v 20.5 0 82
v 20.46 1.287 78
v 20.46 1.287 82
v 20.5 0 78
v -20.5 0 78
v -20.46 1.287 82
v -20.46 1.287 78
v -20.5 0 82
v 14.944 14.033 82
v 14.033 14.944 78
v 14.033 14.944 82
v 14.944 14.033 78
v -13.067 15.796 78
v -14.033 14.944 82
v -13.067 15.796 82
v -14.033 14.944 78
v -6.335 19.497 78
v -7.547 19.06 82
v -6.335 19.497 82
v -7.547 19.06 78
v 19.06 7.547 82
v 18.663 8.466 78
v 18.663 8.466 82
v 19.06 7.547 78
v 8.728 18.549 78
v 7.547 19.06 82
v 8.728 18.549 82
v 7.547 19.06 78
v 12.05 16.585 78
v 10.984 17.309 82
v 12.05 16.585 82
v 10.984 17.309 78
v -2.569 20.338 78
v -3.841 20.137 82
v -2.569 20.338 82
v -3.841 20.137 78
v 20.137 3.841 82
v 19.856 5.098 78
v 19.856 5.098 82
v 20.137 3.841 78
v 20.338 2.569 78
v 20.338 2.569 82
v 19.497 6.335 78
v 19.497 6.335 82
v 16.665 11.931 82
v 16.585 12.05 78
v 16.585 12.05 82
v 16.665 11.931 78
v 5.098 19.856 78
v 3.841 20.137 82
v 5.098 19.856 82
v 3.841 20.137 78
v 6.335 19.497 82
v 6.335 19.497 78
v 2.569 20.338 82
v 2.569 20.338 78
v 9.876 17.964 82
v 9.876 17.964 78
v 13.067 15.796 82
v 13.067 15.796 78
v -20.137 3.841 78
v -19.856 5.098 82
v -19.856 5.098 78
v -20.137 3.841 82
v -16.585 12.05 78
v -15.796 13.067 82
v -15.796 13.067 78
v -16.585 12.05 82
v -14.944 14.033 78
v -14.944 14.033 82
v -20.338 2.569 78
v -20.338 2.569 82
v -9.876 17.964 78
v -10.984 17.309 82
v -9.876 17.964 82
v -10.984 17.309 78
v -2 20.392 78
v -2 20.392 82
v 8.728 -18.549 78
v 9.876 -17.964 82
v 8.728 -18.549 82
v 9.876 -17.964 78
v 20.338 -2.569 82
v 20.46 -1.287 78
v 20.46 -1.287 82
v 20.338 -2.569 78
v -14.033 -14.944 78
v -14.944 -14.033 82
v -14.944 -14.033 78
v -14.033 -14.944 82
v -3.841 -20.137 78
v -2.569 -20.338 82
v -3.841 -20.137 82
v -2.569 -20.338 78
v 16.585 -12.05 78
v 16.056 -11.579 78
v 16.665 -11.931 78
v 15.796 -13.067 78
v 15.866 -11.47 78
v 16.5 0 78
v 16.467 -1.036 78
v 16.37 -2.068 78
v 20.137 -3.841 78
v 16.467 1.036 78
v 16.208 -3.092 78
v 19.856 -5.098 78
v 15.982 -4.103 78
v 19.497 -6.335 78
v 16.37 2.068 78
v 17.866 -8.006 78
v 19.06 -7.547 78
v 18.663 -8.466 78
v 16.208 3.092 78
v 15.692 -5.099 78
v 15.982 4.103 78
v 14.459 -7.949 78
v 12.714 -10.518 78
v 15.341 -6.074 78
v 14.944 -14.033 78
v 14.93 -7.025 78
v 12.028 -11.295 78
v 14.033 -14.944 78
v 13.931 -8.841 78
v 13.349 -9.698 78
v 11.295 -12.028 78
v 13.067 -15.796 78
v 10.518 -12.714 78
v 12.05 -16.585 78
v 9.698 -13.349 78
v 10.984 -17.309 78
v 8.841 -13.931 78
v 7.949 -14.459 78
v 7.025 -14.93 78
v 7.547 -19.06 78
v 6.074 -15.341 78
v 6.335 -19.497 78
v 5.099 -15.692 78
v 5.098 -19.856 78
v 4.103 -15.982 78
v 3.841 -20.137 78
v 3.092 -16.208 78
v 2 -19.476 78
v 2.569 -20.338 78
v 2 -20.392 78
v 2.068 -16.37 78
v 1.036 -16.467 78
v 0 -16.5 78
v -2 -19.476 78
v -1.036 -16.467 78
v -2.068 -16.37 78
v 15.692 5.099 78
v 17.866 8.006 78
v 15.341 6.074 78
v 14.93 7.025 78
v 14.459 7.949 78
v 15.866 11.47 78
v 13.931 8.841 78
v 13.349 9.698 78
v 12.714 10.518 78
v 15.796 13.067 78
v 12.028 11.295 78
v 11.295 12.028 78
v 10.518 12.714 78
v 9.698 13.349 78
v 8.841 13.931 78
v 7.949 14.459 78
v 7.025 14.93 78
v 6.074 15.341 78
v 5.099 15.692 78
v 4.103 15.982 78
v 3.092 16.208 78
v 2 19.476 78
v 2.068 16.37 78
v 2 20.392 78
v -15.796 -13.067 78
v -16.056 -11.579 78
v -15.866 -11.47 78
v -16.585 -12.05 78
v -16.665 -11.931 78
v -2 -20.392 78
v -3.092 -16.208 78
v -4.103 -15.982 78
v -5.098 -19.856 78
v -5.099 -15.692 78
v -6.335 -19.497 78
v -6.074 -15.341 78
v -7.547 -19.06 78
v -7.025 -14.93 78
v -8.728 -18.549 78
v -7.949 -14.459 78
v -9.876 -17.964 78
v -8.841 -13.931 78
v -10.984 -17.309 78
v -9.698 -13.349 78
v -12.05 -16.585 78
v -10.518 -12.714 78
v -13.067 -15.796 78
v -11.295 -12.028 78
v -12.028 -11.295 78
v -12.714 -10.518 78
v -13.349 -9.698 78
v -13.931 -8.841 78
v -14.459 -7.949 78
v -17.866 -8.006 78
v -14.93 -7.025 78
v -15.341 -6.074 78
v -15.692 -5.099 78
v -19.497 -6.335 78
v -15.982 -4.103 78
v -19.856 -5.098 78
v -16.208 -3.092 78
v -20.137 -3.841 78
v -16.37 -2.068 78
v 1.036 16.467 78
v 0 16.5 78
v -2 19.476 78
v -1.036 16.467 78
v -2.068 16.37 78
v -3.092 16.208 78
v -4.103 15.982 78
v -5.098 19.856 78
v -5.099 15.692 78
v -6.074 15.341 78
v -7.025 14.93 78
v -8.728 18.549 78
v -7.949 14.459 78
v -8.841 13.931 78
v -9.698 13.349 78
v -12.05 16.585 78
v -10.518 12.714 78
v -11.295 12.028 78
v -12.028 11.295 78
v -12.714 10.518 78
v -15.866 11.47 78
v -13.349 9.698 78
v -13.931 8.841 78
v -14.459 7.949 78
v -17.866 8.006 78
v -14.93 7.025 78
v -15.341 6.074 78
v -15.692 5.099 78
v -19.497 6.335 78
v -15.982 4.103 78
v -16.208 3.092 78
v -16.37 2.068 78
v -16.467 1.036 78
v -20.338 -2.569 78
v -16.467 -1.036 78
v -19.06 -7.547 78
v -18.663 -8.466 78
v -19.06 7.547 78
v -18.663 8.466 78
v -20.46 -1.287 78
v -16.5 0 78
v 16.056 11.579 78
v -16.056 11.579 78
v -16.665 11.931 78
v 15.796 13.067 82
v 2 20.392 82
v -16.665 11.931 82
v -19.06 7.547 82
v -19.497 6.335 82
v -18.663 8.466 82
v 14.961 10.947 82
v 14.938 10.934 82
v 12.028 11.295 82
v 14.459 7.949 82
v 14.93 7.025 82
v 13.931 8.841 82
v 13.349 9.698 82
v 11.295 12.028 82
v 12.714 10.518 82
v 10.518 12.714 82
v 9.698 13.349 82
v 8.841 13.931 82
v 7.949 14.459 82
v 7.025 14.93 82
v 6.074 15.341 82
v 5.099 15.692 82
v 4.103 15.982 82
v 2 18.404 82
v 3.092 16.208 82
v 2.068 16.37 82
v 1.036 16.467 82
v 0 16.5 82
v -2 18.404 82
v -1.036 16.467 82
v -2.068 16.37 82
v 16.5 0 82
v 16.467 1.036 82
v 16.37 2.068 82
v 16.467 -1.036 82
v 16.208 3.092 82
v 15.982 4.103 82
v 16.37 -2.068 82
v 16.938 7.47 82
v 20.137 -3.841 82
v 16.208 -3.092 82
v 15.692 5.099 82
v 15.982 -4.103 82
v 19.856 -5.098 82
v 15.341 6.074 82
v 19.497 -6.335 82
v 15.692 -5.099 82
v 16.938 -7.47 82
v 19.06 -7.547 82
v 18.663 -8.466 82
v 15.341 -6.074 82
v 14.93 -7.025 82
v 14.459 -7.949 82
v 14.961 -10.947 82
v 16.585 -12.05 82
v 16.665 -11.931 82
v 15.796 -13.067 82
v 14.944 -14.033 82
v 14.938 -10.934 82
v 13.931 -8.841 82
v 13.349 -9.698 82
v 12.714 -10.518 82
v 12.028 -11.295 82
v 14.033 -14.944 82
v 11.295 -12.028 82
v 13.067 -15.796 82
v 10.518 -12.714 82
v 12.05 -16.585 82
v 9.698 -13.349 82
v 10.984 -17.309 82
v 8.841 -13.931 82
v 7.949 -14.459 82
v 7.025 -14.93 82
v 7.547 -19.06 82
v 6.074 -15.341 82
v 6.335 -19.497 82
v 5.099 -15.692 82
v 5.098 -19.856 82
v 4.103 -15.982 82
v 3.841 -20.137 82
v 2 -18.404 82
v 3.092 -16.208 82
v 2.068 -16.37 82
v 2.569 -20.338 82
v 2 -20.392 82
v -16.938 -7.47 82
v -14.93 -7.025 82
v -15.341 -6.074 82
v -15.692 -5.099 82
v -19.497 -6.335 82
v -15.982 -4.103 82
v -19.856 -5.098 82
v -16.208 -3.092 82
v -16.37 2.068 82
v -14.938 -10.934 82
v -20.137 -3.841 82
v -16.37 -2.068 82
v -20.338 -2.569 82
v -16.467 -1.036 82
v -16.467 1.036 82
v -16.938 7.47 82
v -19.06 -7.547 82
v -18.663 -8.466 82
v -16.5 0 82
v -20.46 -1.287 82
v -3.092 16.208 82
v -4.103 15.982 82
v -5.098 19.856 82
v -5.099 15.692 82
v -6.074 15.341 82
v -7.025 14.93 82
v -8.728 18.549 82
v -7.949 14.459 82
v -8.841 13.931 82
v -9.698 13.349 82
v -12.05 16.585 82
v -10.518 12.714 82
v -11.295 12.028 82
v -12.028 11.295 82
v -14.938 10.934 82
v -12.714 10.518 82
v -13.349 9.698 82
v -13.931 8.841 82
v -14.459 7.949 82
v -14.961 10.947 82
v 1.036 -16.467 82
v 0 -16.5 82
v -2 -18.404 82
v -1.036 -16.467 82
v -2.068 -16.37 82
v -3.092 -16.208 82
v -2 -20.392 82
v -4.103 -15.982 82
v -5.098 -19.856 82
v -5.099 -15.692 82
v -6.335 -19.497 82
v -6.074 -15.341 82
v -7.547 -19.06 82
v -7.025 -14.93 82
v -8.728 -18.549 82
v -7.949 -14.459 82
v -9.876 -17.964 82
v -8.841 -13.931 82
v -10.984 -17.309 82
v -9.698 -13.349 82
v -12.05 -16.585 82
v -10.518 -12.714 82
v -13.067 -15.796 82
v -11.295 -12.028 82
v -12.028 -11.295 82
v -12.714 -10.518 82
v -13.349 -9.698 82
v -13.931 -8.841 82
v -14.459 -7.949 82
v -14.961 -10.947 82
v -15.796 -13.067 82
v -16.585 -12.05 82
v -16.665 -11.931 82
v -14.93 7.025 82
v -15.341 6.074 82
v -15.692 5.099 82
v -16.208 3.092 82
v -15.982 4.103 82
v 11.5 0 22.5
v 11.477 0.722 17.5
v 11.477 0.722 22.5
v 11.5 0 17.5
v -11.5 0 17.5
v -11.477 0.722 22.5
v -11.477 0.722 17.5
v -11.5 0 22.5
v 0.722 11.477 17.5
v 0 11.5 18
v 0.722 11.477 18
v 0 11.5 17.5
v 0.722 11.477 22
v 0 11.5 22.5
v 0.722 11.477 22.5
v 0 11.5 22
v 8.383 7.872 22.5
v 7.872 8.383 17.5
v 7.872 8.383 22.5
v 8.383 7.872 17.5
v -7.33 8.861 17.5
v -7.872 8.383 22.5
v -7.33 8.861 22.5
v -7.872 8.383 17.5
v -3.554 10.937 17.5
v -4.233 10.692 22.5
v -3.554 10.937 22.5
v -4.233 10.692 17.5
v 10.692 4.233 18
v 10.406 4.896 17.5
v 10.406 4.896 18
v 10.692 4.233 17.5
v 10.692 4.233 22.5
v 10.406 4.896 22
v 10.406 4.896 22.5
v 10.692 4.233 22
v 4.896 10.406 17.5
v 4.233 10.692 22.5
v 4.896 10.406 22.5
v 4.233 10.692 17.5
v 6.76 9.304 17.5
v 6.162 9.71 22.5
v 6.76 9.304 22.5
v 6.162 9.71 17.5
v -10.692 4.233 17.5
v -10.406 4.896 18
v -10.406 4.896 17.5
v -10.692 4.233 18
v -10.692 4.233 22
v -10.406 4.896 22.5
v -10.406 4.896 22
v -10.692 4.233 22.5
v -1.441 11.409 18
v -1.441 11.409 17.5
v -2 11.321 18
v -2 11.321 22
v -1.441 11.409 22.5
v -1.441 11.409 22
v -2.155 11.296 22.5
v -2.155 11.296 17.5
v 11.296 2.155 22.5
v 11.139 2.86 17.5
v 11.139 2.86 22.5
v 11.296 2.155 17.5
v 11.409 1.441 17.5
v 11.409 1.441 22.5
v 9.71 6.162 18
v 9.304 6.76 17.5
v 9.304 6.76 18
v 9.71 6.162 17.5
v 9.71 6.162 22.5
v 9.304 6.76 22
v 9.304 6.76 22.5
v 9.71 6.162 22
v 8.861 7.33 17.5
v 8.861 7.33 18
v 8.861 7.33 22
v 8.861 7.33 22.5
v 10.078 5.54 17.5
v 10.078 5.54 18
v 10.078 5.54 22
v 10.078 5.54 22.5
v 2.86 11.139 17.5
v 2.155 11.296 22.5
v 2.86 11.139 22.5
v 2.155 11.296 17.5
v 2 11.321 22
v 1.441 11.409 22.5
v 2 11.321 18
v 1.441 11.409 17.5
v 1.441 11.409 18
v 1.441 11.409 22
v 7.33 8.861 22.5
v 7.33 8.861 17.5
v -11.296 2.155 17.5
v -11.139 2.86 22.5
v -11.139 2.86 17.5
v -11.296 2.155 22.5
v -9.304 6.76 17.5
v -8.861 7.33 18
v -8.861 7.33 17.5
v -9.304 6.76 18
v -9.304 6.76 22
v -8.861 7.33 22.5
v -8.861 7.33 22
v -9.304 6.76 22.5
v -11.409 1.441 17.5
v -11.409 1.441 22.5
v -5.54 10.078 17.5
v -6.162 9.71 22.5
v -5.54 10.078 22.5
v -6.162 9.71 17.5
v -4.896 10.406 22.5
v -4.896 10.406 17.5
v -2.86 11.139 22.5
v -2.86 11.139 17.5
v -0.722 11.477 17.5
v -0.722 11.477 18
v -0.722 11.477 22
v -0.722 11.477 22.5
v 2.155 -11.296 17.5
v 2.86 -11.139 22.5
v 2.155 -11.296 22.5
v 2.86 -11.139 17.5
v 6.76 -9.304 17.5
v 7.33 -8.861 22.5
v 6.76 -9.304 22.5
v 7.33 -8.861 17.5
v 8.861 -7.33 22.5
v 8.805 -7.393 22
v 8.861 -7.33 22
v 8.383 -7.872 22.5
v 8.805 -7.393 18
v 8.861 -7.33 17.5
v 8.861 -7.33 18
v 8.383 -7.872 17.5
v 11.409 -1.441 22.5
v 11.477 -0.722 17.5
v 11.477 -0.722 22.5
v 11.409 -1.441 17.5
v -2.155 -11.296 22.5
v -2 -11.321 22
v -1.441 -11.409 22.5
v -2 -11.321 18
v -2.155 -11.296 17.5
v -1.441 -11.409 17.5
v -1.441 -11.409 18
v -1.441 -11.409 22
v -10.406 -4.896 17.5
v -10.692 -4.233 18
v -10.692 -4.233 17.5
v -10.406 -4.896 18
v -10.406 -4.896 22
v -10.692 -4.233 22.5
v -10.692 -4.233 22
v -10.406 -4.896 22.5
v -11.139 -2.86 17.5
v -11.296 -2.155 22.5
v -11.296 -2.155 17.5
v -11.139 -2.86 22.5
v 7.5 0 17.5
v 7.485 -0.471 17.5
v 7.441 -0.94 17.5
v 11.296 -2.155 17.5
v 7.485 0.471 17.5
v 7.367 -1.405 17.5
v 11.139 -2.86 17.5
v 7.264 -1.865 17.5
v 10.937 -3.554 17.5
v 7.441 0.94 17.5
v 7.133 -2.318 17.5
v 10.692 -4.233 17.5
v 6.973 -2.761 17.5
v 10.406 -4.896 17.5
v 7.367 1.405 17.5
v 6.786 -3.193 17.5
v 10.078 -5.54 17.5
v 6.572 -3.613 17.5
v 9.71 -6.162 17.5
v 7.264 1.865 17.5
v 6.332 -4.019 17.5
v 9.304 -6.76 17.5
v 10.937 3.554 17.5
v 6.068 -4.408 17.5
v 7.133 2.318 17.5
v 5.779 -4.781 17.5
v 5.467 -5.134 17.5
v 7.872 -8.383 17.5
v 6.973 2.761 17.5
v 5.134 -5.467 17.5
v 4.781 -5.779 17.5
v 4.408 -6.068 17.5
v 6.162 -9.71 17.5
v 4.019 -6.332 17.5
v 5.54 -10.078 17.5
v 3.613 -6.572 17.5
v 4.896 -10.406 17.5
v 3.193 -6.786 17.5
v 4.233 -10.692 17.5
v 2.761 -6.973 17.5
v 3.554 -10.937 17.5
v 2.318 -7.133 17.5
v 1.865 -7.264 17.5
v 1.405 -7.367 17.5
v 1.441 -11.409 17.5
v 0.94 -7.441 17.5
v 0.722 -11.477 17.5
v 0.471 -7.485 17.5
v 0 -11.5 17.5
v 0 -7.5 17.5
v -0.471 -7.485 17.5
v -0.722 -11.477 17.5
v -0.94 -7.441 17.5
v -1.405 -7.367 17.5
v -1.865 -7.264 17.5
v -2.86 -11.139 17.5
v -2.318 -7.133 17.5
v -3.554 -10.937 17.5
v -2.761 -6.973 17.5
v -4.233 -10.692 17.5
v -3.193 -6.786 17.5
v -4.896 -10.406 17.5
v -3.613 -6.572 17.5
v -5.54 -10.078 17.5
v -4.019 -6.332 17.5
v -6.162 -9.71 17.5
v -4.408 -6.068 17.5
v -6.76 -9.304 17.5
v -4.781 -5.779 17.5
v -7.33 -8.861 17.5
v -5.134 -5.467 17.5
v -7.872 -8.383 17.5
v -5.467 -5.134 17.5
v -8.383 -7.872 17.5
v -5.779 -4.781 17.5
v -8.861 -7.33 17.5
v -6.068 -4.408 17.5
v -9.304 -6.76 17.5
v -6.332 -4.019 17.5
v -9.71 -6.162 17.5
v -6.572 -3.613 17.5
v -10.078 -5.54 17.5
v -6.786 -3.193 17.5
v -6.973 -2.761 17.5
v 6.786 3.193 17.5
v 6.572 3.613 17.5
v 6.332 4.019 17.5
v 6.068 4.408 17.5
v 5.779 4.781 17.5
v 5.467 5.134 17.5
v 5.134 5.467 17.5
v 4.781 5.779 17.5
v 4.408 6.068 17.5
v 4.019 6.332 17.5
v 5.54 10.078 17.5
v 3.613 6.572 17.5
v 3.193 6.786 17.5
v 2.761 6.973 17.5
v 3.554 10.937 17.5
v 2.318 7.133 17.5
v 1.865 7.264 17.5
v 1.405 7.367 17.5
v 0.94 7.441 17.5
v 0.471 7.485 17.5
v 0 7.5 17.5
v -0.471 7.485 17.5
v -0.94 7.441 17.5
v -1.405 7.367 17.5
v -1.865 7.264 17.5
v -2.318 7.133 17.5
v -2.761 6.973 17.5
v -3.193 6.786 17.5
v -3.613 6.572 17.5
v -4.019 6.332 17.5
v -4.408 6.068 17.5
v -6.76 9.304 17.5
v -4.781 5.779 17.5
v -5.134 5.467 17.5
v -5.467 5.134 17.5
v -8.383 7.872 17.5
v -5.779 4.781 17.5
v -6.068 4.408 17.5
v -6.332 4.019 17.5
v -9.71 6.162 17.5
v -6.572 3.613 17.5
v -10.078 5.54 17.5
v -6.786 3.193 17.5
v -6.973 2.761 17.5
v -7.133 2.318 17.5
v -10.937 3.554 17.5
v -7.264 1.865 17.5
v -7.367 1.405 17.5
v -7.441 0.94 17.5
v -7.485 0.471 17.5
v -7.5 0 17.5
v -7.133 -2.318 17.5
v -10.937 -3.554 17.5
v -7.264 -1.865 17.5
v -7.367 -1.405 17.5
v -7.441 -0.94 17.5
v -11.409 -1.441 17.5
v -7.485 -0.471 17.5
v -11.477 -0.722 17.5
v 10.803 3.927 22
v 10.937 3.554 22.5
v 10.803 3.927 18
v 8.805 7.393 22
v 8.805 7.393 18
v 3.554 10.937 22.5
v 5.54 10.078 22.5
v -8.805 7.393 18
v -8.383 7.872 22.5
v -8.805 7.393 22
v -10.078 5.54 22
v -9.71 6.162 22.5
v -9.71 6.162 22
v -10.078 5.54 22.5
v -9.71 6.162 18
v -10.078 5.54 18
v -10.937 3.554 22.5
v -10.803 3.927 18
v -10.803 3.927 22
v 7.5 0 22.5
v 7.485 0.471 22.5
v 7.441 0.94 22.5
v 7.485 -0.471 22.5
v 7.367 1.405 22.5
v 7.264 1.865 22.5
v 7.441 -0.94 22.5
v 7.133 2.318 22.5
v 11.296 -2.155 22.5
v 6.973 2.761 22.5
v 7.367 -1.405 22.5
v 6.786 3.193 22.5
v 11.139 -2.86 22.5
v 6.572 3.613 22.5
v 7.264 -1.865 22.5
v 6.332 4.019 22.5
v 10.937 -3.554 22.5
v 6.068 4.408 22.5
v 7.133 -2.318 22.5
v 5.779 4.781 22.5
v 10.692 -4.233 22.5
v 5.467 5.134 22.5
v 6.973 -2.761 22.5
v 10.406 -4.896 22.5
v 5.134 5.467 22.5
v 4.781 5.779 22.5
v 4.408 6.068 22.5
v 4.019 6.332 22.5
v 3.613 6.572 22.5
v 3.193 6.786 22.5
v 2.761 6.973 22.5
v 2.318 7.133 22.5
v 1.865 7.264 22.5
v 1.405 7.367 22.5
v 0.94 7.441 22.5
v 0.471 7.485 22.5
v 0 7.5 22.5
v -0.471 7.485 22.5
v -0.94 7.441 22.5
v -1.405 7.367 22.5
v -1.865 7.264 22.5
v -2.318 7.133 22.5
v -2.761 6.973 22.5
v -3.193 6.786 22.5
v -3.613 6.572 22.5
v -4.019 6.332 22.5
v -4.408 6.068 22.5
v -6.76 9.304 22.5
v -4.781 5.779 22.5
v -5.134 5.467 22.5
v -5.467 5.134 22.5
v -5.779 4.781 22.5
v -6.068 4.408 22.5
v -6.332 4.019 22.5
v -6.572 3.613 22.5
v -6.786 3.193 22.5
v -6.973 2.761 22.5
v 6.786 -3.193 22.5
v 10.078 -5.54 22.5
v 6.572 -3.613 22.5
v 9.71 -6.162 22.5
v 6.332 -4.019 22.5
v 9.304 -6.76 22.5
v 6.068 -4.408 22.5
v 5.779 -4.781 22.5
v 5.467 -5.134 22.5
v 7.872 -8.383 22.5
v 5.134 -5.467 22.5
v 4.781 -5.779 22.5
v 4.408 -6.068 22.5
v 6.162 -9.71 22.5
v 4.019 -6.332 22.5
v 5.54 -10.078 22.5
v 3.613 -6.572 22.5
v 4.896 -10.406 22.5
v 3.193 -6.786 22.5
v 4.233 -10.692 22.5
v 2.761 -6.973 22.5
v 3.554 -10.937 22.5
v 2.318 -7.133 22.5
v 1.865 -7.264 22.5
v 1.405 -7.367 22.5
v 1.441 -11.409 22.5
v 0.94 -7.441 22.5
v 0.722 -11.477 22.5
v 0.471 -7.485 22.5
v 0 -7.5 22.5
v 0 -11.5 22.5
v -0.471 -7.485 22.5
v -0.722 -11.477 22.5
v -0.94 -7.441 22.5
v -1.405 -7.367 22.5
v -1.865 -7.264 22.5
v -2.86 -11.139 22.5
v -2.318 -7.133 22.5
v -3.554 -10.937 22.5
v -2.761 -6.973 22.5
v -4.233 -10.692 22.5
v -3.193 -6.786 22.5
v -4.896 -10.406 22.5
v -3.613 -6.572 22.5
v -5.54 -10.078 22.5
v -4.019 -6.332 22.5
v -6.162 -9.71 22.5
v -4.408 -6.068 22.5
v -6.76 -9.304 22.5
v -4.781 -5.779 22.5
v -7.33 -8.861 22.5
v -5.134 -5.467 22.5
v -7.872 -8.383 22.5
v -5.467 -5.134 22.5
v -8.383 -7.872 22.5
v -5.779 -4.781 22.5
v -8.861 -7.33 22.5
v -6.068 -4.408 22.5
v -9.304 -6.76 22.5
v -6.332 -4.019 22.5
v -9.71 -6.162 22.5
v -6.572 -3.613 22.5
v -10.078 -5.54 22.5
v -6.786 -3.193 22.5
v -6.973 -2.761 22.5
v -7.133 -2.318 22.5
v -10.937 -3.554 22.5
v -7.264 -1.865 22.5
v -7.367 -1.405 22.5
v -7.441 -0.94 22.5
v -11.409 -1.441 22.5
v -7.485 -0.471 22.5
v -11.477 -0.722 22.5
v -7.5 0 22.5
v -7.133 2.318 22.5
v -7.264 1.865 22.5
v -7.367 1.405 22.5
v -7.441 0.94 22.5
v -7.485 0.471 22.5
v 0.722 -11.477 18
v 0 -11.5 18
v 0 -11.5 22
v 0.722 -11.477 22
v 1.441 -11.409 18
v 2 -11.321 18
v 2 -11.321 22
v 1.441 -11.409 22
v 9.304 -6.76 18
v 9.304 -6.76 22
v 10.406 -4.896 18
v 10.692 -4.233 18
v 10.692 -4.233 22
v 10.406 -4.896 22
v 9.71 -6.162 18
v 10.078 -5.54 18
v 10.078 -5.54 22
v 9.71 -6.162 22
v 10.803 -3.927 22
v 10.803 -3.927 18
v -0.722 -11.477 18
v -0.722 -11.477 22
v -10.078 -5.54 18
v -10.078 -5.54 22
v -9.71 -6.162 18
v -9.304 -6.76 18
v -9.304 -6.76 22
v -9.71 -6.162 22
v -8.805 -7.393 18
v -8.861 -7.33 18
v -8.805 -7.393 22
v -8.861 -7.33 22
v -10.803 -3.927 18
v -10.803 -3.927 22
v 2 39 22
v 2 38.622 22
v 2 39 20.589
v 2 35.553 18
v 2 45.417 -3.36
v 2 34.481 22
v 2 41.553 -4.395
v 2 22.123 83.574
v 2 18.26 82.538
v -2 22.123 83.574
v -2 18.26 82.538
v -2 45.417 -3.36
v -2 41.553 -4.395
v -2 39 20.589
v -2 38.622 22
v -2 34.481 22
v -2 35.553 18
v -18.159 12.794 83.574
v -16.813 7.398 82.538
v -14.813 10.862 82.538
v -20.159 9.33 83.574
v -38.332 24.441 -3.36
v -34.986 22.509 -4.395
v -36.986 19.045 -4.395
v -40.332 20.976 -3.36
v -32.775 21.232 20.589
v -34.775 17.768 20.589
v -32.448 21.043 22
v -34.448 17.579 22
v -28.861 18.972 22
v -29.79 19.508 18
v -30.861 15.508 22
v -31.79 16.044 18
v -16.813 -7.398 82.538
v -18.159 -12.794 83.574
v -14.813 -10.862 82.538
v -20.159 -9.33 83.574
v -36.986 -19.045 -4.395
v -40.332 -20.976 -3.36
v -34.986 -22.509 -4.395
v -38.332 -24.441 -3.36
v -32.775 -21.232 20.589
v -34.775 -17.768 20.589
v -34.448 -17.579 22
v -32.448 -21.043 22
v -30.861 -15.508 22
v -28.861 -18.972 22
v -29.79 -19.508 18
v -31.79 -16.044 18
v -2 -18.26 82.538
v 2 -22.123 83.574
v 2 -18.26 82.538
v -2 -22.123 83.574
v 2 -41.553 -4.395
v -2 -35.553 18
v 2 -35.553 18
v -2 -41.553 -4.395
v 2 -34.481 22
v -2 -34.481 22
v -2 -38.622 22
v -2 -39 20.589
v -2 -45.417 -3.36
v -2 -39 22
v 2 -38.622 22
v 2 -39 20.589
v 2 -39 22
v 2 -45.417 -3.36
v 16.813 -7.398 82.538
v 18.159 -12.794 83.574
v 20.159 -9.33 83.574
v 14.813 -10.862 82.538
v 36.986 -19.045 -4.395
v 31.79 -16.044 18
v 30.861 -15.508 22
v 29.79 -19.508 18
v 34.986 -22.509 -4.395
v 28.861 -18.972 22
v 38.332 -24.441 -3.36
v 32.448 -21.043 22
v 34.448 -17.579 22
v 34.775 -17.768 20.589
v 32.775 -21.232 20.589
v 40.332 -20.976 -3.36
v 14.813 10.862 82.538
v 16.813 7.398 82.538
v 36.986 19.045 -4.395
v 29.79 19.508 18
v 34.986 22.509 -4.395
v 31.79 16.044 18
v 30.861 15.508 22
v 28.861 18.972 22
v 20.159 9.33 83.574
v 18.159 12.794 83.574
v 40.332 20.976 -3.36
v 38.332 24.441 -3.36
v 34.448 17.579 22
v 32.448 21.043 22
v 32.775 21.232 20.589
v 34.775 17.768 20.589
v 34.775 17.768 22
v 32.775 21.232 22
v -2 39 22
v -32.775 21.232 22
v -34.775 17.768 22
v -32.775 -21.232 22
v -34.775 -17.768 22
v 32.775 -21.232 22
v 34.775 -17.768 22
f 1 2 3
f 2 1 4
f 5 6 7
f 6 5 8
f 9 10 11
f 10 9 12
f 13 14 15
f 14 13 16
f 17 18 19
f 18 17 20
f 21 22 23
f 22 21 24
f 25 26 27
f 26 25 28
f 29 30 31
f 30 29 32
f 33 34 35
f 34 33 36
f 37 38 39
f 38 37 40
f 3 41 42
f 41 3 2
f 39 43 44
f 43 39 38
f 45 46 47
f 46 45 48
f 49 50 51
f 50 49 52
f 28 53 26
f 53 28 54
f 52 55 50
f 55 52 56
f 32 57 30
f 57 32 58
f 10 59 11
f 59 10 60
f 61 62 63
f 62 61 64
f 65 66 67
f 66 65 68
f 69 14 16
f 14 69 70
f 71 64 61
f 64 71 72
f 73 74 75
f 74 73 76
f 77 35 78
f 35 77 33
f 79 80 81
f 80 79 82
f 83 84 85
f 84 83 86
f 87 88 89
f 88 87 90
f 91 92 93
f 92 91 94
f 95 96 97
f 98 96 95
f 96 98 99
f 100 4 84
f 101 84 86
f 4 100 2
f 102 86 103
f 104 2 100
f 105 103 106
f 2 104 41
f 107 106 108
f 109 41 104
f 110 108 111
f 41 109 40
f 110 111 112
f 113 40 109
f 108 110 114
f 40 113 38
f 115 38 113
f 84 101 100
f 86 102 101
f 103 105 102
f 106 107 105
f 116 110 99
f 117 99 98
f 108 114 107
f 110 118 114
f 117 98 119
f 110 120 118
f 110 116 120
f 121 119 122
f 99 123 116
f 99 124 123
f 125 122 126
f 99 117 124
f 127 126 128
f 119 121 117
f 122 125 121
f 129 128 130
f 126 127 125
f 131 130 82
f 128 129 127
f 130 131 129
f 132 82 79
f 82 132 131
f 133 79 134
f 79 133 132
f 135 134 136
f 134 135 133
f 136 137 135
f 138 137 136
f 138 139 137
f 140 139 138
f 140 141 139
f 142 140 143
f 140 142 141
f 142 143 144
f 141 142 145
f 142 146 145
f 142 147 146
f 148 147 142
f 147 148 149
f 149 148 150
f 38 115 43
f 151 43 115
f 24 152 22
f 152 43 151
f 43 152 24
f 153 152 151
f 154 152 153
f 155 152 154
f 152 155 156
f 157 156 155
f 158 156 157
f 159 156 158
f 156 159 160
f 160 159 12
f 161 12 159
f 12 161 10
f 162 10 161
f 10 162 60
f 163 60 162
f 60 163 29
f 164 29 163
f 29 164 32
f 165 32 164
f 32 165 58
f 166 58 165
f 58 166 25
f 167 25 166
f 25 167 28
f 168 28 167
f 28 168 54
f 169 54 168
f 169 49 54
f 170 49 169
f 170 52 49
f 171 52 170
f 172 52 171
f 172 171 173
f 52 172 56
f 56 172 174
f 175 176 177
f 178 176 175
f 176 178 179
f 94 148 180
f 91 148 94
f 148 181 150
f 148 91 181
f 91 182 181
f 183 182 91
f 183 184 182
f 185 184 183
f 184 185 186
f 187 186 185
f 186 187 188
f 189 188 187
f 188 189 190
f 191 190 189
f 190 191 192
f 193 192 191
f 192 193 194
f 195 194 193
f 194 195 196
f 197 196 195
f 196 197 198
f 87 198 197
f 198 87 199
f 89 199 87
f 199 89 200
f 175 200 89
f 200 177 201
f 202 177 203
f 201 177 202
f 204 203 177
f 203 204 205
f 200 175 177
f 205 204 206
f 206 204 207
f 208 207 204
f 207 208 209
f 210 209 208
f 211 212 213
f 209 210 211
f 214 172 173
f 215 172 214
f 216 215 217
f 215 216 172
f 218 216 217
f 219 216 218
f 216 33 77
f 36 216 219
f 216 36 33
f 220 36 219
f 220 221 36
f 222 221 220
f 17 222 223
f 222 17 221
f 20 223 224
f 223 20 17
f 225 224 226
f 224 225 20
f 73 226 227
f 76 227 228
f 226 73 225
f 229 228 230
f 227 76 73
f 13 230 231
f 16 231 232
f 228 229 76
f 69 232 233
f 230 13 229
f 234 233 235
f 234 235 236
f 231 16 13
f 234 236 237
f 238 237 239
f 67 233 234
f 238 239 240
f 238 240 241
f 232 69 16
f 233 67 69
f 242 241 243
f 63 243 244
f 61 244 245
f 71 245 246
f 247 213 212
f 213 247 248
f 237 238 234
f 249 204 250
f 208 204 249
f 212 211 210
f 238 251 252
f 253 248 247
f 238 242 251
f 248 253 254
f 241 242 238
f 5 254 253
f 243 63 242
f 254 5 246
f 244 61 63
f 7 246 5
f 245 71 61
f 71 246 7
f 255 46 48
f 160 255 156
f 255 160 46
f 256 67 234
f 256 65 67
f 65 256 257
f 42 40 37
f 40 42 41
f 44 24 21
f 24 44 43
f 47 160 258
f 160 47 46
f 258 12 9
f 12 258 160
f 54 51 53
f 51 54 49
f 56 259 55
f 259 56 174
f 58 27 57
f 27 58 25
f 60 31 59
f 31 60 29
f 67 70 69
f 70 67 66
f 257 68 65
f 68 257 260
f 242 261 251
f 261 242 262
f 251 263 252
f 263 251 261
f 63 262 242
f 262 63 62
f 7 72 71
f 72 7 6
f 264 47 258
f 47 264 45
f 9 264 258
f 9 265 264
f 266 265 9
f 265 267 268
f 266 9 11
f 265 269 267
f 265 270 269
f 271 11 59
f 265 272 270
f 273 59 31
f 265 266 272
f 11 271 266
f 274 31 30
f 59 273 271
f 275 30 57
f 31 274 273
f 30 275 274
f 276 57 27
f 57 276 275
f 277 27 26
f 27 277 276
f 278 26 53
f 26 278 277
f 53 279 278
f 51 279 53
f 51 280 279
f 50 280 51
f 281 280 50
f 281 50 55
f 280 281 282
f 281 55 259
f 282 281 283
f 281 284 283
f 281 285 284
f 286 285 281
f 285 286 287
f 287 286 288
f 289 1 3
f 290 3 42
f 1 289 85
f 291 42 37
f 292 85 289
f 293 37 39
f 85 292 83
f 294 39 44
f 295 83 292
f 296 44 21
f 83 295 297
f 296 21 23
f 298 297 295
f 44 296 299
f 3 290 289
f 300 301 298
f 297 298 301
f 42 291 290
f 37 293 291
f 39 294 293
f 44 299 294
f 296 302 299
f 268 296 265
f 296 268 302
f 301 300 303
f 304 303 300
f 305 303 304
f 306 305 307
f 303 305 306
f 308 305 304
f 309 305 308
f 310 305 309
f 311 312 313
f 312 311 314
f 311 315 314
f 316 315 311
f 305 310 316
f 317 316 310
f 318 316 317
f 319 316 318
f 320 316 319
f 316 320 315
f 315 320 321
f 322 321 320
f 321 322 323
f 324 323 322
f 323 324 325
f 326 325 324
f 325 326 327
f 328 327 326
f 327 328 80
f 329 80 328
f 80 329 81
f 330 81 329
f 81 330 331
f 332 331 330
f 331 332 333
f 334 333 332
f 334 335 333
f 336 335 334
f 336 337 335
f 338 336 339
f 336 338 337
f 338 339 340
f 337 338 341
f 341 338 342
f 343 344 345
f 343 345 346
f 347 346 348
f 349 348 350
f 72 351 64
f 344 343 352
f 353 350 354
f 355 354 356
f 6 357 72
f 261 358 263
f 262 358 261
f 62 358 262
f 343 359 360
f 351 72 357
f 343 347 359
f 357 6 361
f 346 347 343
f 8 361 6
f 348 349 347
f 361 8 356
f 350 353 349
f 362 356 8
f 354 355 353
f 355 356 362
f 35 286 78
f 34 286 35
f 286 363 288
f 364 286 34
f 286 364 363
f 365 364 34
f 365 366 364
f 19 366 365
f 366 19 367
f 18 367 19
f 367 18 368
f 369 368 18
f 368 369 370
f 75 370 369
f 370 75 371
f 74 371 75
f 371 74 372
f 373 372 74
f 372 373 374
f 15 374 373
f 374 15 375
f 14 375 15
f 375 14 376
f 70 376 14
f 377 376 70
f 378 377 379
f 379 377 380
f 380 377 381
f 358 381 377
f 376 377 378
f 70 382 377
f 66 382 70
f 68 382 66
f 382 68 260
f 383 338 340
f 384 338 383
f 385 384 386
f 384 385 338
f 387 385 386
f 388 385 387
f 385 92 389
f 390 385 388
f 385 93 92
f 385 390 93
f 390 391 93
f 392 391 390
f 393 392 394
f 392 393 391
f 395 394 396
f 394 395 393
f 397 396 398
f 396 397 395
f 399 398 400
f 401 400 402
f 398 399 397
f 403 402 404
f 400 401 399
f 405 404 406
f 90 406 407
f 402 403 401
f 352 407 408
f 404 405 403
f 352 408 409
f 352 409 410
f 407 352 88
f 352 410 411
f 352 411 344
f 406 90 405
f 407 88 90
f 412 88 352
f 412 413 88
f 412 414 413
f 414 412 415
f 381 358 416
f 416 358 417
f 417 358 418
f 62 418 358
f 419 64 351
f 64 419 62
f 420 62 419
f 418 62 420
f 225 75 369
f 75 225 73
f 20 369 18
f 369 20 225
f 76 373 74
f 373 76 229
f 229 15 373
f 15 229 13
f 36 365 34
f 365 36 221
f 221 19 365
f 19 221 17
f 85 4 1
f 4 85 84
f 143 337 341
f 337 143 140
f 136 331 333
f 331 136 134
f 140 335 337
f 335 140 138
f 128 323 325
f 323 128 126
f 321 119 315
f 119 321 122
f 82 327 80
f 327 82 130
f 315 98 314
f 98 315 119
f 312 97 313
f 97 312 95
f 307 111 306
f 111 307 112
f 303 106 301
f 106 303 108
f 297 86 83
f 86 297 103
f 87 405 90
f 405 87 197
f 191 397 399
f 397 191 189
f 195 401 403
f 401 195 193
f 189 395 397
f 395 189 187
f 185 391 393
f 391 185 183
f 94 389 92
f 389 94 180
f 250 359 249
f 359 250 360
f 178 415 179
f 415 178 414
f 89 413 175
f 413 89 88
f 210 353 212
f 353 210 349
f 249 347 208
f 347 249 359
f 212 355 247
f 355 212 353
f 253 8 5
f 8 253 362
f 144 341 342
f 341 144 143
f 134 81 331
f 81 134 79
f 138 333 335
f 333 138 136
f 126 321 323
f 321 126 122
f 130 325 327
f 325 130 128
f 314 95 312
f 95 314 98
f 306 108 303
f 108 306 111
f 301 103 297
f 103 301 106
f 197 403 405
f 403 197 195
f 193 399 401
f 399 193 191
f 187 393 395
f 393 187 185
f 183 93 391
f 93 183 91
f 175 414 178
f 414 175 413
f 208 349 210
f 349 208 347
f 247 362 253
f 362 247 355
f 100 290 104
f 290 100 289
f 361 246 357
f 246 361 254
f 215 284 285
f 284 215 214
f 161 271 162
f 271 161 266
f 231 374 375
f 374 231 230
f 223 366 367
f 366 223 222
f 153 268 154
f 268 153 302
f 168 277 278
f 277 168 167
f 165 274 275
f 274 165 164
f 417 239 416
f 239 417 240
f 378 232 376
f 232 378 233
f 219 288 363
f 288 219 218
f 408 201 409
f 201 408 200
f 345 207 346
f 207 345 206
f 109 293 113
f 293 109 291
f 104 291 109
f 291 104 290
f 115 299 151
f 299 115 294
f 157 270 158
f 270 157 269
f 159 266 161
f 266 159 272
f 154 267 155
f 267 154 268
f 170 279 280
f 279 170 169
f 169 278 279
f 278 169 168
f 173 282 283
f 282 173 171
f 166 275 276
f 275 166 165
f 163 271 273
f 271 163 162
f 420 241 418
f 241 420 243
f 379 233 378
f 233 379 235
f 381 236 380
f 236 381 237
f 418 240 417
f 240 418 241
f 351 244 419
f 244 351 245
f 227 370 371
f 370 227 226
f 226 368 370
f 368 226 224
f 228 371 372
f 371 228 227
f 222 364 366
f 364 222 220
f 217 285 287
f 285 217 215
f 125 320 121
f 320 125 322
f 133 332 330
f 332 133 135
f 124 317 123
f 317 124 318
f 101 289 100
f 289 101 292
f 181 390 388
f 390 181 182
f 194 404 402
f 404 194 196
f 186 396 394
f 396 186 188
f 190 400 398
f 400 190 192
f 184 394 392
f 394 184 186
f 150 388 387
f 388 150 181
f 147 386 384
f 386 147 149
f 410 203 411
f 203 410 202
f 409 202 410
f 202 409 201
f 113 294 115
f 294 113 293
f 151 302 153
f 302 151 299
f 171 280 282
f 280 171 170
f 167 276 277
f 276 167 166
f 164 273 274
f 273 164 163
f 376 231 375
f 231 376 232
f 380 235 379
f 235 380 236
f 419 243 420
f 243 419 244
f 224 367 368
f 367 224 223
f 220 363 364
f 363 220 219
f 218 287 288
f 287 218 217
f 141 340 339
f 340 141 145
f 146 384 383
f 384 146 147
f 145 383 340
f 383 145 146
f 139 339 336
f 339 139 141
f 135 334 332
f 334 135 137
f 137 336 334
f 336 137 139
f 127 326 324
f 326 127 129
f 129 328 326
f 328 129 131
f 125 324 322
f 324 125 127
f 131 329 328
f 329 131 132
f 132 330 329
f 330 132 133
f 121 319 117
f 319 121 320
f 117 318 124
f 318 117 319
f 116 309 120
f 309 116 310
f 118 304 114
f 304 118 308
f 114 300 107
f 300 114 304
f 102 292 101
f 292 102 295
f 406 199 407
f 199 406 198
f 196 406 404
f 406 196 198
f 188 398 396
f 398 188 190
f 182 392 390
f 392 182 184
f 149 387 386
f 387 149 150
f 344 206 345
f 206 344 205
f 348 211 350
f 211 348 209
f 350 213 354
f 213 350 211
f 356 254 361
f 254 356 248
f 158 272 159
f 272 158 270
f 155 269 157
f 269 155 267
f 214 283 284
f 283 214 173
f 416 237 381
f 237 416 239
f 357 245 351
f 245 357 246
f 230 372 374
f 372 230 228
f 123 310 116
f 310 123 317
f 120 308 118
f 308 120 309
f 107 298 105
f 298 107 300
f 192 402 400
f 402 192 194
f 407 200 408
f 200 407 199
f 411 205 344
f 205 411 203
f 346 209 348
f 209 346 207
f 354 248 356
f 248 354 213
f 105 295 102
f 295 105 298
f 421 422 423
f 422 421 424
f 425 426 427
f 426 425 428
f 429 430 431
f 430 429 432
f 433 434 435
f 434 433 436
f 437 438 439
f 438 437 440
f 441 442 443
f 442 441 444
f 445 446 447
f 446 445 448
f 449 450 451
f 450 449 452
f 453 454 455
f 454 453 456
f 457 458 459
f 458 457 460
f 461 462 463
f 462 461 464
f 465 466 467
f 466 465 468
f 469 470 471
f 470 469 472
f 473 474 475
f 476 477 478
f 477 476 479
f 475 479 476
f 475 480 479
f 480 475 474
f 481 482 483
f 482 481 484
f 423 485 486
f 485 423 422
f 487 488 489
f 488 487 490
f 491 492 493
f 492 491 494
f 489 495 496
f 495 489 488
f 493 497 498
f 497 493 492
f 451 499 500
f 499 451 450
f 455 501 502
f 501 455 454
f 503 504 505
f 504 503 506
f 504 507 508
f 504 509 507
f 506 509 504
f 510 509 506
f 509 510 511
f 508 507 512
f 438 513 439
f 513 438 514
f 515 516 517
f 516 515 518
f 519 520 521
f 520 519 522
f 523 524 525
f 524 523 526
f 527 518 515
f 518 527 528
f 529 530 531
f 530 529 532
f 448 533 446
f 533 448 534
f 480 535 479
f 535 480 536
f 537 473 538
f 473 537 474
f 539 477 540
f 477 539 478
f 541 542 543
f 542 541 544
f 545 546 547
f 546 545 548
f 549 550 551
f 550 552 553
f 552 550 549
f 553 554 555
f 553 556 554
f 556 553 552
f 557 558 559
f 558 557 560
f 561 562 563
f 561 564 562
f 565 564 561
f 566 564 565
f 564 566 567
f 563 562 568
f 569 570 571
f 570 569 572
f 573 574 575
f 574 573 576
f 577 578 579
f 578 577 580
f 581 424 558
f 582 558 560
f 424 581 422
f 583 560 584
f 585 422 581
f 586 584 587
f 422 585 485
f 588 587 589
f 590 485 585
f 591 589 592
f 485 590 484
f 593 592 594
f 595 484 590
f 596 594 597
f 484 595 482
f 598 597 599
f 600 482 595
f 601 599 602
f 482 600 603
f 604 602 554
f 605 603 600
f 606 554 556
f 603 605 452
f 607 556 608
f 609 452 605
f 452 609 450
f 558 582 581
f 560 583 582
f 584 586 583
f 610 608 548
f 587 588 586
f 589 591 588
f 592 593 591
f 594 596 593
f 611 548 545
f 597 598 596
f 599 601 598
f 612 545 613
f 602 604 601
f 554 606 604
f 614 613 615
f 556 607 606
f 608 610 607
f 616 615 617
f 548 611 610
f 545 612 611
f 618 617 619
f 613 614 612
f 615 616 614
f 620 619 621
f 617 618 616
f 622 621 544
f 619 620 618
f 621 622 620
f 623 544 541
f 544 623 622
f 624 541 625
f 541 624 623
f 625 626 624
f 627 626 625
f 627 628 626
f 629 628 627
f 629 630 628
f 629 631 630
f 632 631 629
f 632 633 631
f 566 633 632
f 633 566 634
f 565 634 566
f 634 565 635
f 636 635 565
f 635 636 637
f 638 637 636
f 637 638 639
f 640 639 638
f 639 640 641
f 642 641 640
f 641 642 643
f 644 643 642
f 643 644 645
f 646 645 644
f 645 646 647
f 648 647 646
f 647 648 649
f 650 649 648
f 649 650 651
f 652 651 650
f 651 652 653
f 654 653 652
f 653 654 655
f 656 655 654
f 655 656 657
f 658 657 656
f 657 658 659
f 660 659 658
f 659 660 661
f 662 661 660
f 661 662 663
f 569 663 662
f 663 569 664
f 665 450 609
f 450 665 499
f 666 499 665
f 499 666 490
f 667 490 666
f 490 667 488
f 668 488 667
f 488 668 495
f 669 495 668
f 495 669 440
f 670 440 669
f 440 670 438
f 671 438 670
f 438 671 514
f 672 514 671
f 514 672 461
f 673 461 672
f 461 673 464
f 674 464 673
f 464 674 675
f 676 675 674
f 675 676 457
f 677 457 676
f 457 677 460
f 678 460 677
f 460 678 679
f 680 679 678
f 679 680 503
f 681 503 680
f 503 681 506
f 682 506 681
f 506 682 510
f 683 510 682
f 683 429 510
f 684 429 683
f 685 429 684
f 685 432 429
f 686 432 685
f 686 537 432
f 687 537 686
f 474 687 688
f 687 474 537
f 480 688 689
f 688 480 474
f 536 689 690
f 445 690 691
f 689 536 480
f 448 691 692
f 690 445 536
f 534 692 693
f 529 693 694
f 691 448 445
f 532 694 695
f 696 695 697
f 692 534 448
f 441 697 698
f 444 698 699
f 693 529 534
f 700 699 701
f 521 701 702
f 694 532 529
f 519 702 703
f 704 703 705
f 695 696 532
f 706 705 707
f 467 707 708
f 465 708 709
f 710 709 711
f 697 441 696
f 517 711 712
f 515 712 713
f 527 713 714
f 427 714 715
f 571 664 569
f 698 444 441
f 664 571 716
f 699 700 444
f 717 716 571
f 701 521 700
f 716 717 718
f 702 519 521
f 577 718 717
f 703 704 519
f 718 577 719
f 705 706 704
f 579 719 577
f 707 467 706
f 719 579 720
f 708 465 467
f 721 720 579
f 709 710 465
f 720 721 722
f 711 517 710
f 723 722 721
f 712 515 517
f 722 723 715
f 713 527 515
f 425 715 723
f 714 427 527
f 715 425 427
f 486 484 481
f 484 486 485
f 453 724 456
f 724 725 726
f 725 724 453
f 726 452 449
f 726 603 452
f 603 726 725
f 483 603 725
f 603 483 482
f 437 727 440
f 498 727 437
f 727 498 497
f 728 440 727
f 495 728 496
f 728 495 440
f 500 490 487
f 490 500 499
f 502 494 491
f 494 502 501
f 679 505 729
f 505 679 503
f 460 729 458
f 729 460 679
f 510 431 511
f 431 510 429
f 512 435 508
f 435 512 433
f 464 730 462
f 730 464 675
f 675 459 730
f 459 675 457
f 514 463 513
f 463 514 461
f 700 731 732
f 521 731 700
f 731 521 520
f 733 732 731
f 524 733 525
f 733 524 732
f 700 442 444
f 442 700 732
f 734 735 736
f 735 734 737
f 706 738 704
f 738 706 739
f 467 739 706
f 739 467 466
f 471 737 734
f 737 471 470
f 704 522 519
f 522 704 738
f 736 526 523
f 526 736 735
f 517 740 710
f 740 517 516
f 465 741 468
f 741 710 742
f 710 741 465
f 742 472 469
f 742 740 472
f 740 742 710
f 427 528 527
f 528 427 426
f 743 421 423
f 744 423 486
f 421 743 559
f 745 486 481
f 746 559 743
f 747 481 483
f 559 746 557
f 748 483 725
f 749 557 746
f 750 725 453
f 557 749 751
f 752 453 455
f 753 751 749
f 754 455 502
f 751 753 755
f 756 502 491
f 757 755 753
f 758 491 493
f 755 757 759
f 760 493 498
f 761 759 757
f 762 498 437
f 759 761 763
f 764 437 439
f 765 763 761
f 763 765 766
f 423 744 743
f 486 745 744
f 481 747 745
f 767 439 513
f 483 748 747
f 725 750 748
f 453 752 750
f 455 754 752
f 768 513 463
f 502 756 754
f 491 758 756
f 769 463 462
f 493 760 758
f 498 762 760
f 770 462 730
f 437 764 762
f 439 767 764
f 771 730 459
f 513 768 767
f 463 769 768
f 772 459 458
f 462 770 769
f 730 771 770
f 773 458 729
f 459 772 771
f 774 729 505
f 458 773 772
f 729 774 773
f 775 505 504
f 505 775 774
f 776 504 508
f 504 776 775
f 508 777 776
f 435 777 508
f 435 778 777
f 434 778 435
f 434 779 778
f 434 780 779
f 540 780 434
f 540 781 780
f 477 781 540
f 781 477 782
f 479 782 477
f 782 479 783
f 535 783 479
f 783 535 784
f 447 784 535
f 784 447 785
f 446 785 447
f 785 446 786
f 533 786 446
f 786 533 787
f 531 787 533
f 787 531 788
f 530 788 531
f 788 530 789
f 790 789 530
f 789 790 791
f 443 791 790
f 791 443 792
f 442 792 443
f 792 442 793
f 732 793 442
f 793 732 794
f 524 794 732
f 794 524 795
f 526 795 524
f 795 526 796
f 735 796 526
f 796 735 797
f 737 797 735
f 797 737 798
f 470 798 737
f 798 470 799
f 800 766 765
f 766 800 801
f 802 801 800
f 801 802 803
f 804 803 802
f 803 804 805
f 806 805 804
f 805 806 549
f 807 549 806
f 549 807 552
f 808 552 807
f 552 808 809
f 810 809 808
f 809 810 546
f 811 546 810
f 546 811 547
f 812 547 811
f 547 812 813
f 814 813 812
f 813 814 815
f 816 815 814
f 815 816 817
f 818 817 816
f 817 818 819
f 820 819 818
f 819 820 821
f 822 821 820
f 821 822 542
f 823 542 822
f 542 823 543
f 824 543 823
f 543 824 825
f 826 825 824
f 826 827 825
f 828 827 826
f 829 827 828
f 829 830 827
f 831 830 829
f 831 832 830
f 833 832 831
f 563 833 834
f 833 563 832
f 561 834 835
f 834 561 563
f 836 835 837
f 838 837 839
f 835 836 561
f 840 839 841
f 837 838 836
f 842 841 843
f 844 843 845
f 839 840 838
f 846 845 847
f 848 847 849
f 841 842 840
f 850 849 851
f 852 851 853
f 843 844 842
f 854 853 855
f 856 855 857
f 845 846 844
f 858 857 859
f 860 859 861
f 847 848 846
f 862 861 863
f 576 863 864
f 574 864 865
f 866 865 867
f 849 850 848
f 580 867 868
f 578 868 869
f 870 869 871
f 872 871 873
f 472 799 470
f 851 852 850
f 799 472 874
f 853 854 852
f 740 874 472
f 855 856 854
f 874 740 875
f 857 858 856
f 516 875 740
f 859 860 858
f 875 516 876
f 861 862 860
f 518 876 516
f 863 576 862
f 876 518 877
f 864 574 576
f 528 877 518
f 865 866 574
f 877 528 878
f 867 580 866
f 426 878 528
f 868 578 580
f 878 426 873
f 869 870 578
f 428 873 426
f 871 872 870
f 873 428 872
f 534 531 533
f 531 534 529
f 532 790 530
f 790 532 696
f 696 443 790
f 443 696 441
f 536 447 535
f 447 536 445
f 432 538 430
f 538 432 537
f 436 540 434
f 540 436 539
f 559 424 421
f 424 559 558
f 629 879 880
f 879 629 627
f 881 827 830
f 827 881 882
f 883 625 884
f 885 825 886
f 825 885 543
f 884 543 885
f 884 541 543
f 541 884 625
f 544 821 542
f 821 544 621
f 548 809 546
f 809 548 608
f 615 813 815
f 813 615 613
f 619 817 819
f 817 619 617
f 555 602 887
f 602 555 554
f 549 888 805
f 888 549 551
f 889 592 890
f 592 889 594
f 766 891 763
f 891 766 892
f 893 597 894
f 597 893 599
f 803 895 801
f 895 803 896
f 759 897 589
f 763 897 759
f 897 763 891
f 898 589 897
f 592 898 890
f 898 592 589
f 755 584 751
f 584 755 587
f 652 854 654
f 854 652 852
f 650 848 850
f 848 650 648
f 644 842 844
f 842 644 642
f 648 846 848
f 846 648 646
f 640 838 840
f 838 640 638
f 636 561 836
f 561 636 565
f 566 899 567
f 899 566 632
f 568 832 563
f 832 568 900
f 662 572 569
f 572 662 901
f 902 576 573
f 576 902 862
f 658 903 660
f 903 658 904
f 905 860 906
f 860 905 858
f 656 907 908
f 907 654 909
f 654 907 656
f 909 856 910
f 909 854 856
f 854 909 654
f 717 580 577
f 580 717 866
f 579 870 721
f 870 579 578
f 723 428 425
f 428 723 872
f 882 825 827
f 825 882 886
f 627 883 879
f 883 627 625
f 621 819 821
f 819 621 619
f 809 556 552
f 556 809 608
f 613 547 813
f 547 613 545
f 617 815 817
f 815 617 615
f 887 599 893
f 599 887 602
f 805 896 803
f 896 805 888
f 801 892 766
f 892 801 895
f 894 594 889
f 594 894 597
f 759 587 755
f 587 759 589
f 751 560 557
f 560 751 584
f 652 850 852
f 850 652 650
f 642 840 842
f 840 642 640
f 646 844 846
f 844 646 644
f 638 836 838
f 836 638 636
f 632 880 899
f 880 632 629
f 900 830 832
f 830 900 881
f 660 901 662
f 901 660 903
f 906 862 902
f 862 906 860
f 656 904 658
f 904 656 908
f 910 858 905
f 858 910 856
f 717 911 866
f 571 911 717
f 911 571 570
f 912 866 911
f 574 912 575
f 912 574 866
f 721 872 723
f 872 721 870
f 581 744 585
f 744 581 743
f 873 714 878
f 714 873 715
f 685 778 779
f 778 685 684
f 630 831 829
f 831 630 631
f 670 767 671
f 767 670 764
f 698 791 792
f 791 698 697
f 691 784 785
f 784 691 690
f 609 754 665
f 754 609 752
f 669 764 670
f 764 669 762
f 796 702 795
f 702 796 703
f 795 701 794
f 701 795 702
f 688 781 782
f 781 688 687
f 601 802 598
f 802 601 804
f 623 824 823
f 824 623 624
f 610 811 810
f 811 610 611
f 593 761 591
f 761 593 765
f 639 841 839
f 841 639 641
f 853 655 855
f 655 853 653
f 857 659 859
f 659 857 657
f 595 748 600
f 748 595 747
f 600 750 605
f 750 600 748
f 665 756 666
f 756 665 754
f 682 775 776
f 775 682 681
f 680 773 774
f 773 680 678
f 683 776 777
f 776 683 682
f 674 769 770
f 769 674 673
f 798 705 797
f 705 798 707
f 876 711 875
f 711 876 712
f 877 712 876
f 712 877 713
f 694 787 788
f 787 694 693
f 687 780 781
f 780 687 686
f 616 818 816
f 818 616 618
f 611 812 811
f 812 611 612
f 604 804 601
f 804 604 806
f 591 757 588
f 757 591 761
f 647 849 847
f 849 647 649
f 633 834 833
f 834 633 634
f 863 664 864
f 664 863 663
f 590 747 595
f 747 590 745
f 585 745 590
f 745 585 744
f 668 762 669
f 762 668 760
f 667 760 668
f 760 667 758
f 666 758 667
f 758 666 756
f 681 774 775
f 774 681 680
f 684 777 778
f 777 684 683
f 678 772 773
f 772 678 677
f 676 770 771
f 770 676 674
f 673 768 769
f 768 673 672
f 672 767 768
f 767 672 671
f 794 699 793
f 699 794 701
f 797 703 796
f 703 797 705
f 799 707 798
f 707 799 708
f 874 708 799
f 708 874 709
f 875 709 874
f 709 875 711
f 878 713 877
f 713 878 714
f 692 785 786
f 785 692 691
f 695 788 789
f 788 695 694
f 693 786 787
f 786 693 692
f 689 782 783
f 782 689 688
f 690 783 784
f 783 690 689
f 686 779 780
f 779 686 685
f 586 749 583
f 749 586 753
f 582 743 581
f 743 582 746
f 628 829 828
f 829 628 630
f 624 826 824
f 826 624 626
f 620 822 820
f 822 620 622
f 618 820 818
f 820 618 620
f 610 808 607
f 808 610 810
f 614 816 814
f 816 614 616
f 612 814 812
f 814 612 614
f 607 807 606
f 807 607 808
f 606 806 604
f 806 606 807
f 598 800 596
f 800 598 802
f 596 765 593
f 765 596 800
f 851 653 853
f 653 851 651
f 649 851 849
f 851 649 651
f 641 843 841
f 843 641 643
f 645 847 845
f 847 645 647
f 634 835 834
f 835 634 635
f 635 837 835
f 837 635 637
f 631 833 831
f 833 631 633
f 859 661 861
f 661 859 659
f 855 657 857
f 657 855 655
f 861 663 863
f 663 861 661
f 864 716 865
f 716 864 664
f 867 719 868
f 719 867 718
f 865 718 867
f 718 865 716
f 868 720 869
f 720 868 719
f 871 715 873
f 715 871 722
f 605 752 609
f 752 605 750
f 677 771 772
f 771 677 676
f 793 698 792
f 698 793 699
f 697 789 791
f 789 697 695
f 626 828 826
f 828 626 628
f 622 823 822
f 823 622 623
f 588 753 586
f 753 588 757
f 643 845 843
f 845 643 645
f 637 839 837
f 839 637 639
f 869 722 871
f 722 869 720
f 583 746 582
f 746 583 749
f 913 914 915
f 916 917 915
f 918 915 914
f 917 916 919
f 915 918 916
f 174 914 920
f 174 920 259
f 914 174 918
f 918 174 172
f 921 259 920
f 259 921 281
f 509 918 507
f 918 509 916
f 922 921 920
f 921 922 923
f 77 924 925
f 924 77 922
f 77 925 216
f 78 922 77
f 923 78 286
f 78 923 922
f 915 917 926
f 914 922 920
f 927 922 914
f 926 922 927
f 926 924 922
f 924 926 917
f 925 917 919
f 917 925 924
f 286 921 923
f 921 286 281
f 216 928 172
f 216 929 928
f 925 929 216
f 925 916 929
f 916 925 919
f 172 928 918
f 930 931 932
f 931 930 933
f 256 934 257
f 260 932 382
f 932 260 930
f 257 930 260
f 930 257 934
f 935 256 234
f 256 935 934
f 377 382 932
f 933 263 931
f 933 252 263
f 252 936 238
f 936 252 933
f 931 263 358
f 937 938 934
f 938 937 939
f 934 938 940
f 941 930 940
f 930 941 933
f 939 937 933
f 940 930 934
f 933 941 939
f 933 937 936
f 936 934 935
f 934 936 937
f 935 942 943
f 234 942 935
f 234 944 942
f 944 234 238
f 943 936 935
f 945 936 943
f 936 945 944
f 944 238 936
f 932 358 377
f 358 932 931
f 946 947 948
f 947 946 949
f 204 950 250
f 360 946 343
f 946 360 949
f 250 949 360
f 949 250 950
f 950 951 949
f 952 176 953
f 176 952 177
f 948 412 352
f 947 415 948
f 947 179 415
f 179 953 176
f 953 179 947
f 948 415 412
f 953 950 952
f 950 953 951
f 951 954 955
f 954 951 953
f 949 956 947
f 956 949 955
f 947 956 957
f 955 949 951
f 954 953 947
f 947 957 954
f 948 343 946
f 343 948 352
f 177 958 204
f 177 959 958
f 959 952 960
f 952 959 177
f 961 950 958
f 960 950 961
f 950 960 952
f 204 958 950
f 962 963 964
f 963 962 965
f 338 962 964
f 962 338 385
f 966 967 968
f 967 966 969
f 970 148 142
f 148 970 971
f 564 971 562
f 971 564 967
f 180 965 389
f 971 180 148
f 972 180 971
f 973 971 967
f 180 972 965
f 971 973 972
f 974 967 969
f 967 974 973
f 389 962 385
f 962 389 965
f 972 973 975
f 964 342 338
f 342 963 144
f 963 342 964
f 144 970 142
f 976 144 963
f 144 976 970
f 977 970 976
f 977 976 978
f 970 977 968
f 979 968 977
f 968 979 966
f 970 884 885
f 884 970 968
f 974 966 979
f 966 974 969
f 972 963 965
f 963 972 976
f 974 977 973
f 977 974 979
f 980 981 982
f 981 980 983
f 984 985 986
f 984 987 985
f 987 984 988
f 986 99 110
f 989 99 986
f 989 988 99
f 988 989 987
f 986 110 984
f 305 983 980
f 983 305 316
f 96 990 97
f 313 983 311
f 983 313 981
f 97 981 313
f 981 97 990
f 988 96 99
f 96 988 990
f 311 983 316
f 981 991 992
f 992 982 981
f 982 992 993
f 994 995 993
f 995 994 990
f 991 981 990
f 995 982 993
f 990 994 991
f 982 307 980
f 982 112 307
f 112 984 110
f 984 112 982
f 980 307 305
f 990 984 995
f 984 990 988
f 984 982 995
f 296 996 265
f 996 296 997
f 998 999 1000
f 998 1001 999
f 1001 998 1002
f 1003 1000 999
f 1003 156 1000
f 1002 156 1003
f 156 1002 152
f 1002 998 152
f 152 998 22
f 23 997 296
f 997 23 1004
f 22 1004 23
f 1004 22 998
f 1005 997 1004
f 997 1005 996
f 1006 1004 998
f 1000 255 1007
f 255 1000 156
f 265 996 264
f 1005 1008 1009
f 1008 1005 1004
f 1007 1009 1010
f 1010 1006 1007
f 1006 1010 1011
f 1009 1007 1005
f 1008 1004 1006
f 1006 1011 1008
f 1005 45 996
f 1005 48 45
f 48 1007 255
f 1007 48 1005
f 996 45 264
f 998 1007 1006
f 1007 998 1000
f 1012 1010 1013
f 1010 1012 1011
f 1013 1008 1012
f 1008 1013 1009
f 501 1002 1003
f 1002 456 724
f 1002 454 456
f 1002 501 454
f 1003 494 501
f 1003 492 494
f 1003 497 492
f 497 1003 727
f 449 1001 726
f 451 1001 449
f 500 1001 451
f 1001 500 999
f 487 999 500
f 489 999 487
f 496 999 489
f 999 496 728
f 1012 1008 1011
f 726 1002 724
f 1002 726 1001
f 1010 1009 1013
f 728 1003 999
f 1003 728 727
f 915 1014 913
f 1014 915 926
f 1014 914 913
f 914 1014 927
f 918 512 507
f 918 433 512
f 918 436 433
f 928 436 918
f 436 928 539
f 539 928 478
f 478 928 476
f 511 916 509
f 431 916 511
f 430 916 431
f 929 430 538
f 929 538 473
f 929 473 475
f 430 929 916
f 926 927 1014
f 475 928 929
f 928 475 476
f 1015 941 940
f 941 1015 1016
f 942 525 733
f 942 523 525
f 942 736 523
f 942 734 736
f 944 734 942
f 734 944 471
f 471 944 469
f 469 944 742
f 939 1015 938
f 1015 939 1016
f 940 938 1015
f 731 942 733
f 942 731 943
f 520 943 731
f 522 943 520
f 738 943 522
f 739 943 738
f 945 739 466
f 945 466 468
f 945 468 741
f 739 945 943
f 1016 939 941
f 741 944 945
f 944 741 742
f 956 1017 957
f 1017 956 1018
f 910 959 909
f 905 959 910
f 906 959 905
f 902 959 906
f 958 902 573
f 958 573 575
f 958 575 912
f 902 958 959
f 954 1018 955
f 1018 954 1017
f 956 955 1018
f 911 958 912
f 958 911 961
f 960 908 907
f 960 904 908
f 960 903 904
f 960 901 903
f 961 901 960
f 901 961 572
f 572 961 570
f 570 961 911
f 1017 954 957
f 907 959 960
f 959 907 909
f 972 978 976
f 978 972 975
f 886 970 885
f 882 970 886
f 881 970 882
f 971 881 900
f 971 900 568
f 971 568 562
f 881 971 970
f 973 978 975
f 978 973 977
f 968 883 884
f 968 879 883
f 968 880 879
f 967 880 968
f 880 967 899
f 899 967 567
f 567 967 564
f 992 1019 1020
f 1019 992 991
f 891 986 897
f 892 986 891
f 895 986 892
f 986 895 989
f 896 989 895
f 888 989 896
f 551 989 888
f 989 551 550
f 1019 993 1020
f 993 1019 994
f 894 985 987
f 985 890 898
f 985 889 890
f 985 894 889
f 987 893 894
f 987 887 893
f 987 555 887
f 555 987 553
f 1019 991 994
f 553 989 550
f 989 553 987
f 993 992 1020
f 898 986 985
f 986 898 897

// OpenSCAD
// Sometimes we just have to put one single Falcon tube upright...

$fn=100;

module ring(inner_diameter=6.15, height=5, wall_thickness=4)
{
    difference(){
        cylinder(d=inner_diameter+(2*wall_thickness),
            h=height,
            center=true);
        #cylinder(d=inner_diameter,
            h=height+0.5,
            center=true);
    }
}

// upper ring
translate([0,0,80])
    ring(inner_diameter=33, height=4);
// lower ring
translate([0,0,20])
    ring(inner_diameter=15);
// legs, connectors and cutting to put on table
difference(){
    union(){
        // legs
        for (i = [0:60:359]) {
            rotate([15,0,i])
            translate([0,41,30])
            cube([4,4,90], center=true);
            } 
        // connector to lower ring
        for (i = [30:60:359]) {
            translate([0,0,22])        
            rotate([0,0,i])
            translate([24,0,-2])        
            cube([30,4,4], center=true);
            }    
    }    
    //table
    %translate([0,0,-5])
        cube([120,120,10], center=true);
    }
